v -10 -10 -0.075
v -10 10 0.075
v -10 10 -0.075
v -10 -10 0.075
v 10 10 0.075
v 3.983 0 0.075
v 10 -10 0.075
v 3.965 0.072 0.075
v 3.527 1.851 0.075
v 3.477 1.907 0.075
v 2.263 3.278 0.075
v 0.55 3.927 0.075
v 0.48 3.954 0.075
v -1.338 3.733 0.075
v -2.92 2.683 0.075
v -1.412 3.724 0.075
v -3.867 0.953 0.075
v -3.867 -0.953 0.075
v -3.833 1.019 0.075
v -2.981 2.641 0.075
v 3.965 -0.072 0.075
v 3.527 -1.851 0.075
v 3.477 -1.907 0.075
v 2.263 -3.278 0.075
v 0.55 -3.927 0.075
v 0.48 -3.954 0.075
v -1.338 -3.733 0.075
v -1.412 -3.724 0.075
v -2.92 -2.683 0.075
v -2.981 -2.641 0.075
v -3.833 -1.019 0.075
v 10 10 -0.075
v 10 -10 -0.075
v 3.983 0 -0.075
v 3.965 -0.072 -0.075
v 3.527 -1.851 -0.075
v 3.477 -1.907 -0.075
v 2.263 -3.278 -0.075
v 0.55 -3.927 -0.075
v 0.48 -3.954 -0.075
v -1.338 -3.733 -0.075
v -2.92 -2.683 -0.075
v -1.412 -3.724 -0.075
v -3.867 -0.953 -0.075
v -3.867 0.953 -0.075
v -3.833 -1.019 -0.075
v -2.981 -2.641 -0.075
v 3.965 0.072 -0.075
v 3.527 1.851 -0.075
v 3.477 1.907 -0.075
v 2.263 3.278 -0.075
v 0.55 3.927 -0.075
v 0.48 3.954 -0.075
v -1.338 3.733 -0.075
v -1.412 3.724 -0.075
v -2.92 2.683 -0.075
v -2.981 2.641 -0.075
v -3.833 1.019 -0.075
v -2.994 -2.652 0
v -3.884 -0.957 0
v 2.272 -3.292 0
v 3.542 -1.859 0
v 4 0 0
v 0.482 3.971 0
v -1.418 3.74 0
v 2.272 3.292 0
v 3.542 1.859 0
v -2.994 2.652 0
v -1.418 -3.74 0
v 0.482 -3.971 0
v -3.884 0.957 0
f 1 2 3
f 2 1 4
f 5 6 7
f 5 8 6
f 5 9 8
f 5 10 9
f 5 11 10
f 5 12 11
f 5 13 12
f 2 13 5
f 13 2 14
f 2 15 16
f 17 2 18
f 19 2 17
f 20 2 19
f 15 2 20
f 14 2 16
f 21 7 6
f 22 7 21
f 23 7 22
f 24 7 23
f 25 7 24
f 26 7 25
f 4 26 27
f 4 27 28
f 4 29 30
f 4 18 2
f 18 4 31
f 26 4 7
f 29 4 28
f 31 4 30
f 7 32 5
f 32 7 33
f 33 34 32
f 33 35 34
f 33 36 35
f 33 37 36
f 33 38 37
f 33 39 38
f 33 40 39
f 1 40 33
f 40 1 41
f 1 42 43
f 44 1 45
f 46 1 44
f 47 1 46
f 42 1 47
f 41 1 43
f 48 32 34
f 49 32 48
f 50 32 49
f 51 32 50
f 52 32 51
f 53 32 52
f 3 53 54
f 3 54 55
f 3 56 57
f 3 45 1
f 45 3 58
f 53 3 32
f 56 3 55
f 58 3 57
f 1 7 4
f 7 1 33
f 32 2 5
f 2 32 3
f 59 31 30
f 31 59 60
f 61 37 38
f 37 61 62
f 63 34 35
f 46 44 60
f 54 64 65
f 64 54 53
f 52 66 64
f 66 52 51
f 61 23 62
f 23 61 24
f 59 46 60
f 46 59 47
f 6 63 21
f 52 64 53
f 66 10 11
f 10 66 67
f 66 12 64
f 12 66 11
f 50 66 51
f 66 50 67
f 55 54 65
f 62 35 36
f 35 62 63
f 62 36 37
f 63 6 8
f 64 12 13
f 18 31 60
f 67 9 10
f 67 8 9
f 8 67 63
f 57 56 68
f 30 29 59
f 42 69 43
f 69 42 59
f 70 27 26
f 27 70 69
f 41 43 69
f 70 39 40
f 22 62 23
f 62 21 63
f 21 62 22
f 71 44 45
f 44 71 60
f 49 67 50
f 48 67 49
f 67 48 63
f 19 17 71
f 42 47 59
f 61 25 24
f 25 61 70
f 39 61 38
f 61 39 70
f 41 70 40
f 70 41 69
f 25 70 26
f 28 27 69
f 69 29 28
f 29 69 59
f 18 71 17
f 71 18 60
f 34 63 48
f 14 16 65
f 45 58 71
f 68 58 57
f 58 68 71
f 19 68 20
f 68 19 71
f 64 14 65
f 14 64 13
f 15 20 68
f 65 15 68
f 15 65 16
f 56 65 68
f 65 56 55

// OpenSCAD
    
module regular_polygon(order = 3, r=1){
 	angles=[ for (i = [0:order-1]) i*(360/order) ];
 	coords=[ for (th=angles) [r*cos(th), r*sin(th)] ];
 	polygon(coords);
} 


difference() {
    cube([20,20,0.15], center = true);

    sphere(4);

}
